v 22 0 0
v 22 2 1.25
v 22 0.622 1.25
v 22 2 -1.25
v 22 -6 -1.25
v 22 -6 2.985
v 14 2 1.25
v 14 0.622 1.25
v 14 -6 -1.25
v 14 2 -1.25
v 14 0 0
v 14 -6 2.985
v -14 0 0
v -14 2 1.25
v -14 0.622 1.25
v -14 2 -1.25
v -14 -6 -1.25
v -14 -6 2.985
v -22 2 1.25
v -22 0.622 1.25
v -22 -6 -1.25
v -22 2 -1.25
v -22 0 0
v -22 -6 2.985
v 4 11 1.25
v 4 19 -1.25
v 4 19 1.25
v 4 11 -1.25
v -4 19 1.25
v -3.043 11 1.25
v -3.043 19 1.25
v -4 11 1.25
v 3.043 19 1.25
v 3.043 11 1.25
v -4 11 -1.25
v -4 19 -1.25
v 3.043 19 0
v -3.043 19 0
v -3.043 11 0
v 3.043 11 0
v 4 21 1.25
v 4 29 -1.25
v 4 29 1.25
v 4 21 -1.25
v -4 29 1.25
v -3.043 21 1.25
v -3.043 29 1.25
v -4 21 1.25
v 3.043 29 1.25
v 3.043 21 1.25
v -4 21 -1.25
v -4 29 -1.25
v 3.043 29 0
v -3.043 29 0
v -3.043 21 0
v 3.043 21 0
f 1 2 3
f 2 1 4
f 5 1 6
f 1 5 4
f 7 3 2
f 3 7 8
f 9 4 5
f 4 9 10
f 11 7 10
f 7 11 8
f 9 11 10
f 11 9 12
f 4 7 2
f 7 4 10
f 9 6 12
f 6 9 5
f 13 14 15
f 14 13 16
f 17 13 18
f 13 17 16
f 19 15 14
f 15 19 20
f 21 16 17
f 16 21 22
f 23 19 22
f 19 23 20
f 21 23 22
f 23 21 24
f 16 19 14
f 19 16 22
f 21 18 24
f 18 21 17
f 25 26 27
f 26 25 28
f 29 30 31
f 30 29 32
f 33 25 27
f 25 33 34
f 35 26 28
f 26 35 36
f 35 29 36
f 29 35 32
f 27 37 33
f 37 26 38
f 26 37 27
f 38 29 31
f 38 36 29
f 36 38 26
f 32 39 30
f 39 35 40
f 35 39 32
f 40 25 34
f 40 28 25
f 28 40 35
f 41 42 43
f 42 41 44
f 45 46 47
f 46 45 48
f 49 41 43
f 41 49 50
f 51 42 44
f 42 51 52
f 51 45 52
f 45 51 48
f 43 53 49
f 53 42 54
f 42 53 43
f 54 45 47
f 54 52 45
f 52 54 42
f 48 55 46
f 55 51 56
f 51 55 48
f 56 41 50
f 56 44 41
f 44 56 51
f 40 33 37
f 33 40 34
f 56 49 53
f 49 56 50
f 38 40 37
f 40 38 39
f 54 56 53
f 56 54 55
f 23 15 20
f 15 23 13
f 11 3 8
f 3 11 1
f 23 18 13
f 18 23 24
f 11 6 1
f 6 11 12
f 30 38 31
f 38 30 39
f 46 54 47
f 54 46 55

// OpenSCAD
// file: mandala-easel.scad
/* Easel for the Mandala frame. */

ANGLE = asin(15.4 / 17.2);

FRAME_LENGTH = 220;
FRAME_THICKNESS = 25 + 1;
BORDER = 6;

WIDTH = 100;

ATOM = 0.01;

echo(ANGLE);
echo(cos(ANGLE)*17.2);

module easel(straight=false, frameshade=false) {
    translate([-WIDTH/2, 0, 0])
    rotate([straight ? 90-ANGLE : 0, 0, 0]) {
        rotate([ANGLE, 0, 0]) {
            difference() {
                cube([WIDTH, FRAME_THICKNESS, FRAME_THICKNESS+BORDER*2]);
                
                if (frameshade)
                    %
                    translate([-(FRAME_LENGTH-WIDTH)/2, BORDER, BORDER])
                    cube([FRAME_LENGTH, FRAME_LENGTH, FRAME_THICKNESS]);

                translate([-ATOM, BORDER, BORDER])
                cube([WIDTH+ATOM*2, FRAME_THICKNESS, FRAME_THICKNESS]);

                translate([-ATOM, BORDER+BORDER, BORDER+BORDER*2])
                cube([WIDTH+ATOM*2, FRAME_LENGTH, FRAME_THICKNESS]);

                translate([BORDER*2, -BORDER, BORDER + FRAME_THICKNESS - BORDER])
                cube([WIDTH-BORDER*4, FRAME_THICKNESS, FRAME_THICKNESS]);
            }
            
        }

        intersection() {
            cl = cos(ANGLE)*FRAME_LENGTH;
            rotate([ANGLE, 0, 0])
            translate([WIDTH/2-BORDER/2, 0, BORDER-cl*2 ])
            cube([BORDER, FRAME_LENGTH, cl*2]);

            cube([WIDTH, FRAME_LENGTH*2, FRAME_LENGTH]);

            rotate([90-ANGLE, 0, 0])
            translate([0, 0, -FRAME_LENGTH])
            cube([WIDTH, FRAME_LENGTH*cos(ANGLE) * .9, FRAME_LENGTH*2]);   
        }
    }
}

if (! $preview)
    easel(true);
else
    easel(frameshade=true);
// main file
use <mandala-easel.scad>

MARGIN = .17;
THICKNESS = 2.5;
EXTRA = 3;

module easel2 () {
    translate([ MARGIN/4, 0, 0]) easel();
    translate([-MARGIN/4, 0, 0]) easel();
}


module pad1() {
    cube([8, 8, THICKNESS], center=true);

    translate([0, -2, EXTRA/2])
    cube([8, 4, EXTRA], center=true);
}


difference() {
    union() {
        translate([ 18, -2, 0]) pad1();
        translate([-18, -2, 0]) pad1();

        translate([0, 15, 0]) cube([8, 8, THICKNESS], center=true);
        translate([0, 25, 0]) cube([8, 8, THICKNESS], center=true);
    }
    easel2();
    if ($preview) %easel2();
}
